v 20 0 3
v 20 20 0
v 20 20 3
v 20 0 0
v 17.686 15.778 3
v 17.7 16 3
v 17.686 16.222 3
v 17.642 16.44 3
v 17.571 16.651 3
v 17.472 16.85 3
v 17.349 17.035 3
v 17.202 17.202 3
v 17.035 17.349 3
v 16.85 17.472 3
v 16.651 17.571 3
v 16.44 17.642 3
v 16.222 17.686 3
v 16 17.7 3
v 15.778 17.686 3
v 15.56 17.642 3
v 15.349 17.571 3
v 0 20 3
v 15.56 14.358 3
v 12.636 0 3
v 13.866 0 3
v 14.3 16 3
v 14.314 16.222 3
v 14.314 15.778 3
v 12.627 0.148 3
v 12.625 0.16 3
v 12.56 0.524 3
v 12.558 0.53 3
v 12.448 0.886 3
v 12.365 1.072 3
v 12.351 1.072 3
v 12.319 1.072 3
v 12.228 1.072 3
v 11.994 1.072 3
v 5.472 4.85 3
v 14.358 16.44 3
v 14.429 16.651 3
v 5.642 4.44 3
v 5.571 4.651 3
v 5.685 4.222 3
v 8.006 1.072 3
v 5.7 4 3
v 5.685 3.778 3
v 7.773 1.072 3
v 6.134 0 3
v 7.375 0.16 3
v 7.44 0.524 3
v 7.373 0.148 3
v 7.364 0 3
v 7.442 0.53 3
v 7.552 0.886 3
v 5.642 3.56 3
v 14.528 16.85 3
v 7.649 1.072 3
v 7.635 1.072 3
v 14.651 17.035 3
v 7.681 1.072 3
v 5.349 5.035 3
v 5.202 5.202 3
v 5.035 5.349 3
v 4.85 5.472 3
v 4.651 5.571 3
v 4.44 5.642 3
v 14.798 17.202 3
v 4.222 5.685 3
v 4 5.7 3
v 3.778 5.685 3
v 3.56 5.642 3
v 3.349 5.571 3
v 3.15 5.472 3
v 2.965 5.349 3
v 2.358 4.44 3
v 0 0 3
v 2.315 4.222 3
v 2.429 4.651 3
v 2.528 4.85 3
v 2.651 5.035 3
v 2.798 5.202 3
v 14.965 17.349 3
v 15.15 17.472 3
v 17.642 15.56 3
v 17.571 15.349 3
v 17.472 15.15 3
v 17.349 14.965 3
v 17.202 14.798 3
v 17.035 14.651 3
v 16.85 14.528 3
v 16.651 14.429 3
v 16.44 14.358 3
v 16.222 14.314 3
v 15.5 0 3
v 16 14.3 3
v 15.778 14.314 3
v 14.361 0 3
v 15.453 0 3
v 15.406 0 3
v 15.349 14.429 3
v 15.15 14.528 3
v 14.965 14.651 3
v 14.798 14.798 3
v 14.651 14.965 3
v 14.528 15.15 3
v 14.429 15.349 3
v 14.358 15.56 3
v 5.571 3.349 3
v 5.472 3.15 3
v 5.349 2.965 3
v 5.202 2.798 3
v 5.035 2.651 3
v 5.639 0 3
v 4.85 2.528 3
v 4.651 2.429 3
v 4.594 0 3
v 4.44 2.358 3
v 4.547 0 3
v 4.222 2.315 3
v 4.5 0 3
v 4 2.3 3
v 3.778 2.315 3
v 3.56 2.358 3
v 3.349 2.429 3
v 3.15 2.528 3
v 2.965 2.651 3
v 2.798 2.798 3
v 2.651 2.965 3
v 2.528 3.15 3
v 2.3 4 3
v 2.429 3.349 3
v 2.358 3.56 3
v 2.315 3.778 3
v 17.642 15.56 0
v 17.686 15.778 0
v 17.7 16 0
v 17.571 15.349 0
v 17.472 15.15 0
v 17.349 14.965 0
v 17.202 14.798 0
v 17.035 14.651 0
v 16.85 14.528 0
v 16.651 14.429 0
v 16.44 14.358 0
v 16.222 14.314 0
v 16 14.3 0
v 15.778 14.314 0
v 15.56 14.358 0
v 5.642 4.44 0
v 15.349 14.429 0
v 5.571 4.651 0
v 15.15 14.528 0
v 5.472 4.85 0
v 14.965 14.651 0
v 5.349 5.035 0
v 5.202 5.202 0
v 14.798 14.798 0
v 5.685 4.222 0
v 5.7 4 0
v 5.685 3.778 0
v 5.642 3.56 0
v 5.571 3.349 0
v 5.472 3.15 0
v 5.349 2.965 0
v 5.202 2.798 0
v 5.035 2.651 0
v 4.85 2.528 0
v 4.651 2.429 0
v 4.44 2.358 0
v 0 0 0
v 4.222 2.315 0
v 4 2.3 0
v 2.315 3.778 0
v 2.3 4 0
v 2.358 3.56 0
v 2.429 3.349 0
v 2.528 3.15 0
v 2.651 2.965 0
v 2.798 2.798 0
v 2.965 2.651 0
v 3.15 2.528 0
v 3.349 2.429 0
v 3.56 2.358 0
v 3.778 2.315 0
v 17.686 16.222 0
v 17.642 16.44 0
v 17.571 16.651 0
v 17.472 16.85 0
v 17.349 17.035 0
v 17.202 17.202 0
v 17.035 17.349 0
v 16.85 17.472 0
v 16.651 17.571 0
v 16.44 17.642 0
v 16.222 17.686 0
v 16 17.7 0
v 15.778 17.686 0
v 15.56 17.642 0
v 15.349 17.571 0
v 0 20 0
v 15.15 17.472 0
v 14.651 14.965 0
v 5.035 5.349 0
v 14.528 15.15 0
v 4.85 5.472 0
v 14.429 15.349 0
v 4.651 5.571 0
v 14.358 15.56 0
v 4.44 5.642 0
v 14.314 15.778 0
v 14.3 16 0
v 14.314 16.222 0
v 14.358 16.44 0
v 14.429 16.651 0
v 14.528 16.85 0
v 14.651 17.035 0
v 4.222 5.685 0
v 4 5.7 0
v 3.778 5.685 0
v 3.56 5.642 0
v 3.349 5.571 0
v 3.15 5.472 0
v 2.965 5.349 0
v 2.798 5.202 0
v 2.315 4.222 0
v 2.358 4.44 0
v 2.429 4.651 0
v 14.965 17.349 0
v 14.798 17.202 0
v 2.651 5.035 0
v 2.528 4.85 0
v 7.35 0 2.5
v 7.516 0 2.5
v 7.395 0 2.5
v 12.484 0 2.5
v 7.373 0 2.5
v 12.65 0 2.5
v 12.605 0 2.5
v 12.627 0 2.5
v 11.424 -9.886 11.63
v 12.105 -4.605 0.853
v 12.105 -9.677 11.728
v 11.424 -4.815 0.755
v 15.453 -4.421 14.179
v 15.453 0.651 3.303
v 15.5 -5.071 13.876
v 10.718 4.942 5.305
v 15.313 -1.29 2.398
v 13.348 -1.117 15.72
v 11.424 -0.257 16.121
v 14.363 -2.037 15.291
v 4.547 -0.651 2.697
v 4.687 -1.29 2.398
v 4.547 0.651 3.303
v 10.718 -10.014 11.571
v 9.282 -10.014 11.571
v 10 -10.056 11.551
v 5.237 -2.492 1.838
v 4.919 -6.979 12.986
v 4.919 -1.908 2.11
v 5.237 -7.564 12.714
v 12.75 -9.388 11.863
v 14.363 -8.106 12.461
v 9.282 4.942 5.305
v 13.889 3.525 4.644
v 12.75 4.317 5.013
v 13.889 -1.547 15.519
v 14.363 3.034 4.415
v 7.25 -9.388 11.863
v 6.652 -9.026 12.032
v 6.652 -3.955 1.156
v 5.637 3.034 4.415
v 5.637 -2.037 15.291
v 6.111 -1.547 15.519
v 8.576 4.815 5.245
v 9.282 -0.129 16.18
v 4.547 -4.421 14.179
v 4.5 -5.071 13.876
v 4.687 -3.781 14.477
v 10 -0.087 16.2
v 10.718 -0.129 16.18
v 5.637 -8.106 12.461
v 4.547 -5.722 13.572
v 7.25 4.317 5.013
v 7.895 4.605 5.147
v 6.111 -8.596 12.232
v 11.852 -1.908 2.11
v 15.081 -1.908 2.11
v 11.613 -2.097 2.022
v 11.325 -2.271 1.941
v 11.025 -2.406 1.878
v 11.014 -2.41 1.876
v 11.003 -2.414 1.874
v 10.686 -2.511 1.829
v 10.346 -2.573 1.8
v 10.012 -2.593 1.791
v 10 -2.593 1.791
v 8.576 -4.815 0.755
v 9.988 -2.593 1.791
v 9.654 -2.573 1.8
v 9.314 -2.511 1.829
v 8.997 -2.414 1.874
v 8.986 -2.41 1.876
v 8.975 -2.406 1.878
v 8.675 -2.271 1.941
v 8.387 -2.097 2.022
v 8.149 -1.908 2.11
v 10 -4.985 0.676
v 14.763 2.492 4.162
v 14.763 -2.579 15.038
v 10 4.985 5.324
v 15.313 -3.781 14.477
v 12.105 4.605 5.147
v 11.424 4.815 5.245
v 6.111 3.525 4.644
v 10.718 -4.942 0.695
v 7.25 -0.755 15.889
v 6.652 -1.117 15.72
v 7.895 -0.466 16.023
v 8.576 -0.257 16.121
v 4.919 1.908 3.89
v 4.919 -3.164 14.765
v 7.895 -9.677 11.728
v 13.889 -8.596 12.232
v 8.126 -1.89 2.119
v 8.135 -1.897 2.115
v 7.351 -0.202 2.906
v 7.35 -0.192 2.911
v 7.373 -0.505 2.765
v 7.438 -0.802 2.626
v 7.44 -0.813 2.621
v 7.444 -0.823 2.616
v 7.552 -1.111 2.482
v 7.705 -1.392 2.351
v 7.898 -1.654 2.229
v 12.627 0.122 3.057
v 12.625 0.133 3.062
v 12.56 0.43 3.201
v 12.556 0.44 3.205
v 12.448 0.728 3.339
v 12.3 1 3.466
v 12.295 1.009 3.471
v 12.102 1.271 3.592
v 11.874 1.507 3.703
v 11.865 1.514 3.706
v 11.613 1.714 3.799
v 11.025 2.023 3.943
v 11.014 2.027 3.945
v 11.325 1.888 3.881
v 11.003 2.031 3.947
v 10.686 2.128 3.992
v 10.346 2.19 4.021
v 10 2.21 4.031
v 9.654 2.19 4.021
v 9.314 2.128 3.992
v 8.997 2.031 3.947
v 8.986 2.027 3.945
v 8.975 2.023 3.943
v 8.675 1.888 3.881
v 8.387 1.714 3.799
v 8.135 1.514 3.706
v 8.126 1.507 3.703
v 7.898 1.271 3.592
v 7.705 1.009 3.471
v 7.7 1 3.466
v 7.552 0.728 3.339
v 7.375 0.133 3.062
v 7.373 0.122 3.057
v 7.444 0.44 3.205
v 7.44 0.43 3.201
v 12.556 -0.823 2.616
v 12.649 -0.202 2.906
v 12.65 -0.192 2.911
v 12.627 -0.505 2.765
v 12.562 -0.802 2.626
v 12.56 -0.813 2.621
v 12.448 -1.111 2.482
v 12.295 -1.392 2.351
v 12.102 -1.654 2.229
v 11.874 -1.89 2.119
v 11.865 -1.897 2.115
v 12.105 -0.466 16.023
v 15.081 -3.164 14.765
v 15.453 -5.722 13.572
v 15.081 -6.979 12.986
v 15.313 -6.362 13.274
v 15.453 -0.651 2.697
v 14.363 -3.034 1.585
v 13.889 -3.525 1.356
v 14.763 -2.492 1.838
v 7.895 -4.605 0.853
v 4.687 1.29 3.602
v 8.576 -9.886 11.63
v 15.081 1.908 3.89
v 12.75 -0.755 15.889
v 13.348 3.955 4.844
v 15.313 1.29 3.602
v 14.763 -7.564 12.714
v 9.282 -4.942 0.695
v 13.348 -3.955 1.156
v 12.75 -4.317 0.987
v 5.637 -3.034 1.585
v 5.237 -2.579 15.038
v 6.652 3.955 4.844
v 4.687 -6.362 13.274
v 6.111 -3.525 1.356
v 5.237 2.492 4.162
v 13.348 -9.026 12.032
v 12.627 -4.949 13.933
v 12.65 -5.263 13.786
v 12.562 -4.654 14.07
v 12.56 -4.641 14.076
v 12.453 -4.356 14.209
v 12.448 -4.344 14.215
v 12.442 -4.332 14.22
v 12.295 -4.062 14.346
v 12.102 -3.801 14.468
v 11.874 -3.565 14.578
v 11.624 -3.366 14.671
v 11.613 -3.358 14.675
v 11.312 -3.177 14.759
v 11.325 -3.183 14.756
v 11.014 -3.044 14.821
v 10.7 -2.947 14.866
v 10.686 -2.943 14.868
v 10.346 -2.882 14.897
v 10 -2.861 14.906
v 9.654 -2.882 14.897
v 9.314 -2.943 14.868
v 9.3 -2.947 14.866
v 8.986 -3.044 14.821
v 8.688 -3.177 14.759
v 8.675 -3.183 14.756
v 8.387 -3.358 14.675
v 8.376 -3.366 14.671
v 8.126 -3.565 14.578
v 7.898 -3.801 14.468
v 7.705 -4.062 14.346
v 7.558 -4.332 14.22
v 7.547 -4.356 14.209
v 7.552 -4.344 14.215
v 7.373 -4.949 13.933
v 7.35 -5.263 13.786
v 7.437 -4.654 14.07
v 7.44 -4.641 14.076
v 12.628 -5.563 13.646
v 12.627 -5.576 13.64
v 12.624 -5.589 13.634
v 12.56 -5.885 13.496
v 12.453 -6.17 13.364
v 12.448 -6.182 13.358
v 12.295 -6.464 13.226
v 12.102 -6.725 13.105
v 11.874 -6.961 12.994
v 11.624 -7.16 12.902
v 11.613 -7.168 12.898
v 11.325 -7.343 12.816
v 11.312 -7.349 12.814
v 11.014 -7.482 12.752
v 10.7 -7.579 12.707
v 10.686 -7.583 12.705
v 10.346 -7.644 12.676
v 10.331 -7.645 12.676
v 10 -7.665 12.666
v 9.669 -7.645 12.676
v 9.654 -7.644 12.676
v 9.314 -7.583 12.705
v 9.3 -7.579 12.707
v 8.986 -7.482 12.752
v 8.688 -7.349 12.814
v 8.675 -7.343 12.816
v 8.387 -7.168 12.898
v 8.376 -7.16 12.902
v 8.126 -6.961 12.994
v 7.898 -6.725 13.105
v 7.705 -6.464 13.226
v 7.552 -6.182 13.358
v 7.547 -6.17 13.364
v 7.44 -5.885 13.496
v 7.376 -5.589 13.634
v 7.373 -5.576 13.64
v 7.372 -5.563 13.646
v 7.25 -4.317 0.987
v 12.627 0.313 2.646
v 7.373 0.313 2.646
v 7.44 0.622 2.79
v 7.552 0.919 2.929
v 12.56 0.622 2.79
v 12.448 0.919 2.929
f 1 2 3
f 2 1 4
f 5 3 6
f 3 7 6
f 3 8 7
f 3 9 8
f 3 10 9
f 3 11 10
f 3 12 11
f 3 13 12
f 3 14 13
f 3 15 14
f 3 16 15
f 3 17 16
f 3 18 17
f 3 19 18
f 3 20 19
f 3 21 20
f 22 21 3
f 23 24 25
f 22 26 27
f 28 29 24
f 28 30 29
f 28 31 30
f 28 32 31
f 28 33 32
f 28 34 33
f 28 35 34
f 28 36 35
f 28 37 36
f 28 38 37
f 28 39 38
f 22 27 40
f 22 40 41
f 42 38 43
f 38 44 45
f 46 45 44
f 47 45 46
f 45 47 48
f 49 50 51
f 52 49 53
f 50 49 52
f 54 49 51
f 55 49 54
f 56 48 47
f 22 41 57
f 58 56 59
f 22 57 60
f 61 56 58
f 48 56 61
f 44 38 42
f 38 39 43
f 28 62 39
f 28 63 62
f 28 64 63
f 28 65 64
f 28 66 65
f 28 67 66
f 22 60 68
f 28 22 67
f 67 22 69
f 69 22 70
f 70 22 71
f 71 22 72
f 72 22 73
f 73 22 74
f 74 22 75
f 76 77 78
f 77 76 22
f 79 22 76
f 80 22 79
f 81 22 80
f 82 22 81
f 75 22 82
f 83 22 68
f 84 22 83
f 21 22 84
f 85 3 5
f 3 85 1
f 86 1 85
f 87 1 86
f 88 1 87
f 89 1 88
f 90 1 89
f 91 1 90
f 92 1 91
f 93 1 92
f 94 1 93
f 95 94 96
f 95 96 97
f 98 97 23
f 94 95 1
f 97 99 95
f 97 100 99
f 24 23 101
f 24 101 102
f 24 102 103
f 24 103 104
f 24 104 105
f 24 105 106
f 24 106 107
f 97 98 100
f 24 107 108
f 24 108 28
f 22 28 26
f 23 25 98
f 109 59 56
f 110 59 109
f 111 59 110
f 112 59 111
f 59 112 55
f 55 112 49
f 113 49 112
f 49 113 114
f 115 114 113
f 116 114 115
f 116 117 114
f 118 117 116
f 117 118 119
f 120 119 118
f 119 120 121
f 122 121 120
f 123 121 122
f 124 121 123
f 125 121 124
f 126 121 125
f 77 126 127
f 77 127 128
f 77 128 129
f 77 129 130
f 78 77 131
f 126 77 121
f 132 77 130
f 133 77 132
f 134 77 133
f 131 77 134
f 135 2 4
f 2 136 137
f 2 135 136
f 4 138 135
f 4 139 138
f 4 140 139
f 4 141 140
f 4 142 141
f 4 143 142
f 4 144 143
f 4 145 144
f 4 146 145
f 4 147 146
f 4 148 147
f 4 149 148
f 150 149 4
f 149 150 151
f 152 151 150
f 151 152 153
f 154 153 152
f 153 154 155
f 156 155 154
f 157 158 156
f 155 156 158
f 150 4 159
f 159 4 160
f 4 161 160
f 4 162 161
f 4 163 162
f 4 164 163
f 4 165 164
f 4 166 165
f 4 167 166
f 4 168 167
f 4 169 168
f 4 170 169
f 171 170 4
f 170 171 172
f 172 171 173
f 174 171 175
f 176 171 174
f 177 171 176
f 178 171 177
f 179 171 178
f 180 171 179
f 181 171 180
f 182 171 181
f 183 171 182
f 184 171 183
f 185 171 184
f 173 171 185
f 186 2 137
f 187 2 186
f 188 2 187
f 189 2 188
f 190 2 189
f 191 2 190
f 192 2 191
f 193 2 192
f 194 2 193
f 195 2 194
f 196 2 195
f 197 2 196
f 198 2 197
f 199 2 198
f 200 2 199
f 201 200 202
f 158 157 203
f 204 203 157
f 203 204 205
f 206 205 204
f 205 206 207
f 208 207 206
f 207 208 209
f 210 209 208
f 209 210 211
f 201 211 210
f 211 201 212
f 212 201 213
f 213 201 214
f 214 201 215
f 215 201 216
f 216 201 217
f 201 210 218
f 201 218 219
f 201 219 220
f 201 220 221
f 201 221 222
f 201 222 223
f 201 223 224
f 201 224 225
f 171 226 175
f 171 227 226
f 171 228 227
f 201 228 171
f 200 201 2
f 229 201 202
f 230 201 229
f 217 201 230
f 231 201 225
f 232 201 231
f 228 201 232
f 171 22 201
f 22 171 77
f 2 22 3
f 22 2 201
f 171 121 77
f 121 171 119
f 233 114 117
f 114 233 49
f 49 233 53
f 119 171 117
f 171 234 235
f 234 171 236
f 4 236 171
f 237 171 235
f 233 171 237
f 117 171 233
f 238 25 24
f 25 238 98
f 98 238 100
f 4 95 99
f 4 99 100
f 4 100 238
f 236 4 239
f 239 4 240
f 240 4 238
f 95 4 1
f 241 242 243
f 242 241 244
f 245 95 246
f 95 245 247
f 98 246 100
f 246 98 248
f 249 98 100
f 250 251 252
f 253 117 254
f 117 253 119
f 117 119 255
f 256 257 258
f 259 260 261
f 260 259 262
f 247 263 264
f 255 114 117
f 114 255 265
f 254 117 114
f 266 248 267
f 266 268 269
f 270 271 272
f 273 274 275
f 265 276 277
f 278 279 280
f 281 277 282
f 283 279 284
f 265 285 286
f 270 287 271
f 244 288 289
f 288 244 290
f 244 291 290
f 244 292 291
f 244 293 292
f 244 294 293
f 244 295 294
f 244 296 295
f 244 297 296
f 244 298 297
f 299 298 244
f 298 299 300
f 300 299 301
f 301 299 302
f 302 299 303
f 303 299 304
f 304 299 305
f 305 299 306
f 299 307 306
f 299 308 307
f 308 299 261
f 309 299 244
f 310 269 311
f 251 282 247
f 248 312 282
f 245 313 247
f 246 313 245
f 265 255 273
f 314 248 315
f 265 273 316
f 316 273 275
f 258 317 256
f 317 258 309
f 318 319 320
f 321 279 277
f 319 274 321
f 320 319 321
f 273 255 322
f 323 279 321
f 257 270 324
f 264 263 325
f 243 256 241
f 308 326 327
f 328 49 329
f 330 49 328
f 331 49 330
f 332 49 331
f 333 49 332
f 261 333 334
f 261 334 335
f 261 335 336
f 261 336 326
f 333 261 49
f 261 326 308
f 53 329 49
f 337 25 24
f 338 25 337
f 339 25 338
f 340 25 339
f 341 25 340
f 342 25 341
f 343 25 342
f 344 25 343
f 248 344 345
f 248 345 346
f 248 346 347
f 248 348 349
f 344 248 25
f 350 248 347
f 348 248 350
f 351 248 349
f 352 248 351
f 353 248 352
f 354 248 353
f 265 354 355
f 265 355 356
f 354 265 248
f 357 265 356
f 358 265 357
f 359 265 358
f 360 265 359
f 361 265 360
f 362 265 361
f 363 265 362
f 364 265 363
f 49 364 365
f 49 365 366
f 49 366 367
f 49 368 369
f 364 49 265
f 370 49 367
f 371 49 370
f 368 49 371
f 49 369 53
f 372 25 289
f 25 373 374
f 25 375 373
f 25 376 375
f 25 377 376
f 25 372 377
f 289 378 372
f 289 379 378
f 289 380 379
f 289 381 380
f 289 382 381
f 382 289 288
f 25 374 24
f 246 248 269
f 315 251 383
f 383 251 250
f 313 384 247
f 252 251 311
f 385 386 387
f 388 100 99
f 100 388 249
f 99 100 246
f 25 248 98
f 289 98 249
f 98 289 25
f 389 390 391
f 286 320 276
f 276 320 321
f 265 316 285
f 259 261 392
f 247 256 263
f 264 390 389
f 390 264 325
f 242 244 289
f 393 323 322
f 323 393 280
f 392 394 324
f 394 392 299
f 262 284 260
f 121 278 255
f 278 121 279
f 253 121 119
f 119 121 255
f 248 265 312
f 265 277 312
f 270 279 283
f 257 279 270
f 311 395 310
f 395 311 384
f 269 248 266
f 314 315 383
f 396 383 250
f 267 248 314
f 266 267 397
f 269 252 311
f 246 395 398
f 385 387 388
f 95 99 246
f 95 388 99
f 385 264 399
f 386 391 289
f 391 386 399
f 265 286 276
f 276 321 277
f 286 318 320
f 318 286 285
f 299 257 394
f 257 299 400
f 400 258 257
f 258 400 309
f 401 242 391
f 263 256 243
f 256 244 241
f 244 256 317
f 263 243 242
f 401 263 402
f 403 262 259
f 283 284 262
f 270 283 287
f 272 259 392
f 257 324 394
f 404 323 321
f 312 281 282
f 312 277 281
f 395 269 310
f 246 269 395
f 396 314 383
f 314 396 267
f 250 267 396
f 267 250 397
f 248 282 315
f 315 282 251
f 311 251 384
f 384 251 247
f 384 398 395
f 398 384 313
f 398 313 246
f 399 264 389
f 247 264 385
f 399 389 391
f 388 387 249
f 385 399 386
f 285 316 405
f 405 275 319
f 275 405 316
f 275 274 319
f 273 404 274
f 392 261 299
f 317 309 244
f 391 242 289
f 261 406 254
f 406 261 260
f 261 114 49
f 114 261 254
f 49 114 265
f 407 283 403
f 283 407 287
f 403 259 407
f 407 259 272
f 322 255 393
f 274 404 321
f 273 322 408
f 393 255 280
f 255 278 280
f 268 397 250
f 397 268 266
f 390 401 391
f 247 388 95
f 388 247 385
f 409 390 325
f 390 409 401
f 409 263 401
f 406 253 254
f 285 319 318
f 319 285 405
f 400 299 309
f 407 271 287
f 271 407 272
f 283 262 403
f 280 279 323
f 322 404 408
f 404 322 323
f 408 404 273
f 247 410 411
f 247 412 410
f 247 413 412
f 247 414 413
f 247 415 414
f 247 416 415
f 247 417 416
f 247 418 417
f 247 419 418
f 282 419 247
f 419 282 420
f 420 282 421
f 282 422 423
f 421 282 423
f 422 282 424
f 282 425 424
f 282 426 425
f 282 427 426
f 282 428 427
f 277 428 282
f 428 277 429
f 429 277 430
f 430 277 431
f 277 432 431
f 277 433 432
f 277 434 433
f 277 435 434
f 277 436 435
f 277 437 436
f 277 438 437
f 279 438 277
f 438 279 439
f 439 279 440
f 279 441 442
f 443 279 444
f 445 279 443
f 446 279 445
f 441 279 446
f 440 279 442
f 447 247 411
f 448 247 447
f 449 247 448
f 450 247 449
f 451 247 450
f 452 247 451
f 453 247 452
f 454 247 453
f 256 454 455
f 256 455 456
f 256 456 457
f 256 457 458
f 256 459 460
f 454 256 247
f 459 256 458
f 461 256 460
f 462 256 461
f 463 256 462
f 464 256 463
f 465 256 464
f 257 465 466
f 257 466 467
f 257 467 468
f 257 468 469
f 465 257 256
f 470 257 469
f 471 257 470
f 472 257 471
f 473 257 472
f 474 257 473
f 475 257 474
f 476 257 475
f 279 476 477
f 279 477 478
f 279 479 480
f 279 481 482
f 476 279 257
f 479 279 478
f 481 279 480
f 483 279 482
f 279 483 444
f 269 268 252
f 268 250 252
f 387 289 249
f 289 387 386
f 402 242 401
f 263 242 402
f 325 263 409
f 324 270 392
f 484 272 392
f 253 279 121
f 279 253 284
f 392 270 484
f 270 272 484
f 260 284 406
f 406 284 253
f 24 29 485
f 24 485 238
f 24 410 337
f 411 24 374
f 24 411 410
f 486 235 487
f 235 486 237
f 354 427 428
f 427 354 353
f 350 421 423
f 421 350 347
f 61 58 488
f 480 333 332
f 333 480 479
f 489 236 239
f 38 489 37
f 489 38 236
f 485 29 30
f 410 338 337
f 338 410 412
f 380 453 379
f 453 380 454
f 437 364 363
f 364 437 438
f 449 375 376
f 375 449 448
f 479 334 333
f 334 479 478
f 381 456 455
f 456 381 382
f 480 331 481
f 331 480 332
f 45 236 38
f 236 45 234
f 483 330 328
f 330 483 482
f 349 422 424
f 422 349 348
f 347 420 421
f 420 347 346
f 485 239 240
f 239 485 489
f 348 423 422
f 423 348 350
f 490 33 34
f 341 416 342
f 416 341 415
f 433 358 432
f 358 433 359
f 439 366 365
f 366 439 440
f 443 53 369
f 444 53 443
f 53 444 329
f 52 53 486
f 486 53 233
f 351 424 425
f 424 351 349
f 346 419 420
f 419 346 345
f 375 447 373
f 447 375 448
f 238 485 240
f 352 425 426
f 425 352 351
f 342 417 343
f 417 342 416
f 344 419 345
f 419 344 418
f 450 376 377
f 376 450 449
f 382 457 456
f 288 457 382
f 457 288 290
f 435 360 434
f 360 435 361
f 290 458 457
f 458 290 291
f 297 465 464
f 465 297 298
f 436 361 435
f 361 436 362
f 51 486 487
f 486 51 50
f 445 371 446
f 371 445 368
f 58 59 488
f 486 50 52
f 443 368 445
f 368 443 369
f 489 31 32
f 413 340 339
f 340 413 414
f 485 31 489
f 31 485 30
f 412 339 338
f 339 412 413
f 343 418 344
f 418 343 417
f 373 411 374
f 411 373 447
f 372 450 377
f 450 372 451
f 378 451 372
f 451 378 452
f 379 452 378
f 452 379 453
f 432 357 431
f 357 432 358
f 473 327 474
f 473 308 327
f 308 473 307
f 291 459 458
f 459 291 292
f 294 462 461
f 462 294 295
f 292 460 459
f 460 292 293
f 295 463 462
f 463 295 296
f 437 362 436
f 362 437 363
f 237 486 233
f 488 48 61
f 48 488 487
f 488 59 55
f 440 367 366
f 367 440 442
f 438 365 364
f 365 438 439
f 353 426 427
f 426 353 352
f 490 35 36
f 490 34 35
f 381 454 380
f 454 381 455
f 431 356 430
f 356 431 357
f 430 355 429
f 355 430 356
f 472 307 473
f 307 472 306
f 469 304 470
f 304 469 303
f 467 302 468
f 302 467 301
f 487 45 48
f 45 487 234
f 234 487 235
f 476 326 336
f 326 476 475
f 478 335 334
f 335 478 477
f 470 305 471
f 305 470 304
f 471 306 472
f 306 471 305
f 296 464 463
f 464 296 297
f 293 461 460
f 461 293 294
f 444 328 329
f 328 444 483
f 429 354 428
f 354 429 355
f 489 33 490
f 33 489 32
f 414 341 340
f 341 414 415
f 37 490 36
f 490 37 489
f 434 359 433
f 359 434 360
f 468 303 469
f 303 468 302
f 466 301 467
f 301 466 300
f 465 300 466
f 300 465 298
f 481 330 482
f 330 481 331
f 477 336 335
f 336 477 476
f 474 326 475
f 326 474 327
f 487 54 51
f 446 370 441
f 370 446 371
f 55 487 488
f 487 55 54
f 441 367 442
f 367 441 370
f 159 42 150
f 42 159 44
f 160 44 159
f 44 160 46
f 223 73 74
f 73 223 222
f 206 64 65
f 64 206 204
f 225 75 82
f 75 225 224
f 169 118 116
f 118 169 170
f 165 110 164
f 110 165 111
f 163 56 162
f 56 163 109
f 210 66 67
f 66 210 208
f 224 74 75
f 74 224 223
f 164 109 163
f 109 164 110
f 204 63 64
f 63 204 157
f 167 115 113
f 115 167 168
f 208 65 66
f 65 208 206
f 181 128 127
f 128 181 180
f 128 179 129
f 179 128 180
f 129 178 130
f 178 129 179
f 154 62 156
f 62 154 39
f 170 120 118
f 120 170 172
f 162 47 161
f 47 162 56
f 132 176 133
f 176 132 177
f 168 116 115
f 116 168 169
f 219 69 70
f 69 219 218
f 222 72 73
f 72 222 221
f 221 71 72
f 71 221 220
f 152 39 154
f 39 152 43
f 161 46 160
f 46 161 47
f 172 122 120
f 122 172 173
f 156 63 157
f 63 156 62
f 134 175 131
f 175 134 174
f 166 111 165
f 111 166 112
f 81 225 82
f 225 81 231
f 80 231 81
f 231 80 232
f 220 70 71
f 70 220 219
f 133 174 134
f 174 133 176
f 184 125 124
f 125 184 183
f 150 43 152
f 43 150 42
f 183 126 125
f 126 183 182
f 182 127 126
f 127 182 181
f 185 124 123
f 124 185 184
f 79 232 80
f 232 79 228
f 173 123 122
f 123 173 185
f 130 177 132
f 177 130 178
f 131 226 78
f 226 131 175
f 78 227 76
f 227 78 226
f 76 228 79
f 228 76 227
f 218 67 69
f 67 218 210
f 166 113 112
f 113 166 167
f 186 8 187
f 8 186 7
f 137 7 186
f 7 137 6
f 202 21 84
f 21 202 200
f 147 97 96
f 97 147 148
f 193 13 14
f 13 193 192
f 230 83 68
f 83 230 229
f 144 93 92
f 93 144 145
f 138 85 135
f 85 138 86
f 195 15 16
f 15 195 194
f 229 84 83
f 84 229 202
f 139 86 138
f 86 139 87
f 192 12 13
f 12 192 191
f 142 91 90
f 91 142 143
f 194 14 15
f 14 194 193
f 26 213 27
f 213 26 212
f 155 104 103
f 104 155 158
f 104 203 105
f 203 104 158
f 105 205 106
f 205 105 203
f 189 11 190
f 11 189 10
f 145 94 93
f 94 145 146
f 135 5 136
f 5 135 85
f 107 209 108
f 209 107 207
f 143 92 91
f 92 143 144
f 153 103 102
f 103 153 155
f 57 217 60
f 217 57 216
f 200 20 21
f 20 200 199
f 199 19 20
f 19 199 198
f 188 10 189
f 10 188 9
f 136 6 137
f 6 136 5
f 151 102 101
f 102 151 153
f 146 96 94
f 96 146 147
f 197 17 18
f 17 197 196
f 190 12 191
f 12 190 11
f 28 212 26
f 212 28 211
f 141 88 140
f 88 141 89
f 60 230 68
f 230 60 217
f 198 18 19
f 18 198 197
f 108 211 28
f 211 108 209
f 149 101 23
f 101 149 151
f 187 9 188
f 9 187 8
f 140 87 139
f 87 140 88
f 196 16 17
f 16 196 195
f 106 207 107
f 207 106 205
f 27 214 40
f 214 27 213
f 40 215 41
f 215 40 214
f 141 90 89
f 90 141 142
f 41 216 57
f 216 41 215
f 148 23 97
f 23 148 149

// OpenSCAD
// file: params.scad
// Shared measurements for the hookswitch assembly (handset / hook / cradle / switch).
// MEASURE YOUR ACTUAL HANDSET AND SWITCH AND EDIT THESE before printing —
// defaults are typical old-telephone-handset / generic microswitch dimensions.

// --- Handset ---
handset_barrel_d   = 34;   // diameter of the handset where it rests in the cradle prongs
handset_rest_len   = 60;   // length of barrel section that sits in the saddle

// --- Hook lever (see-saw pressed down by handset weight) ---
lever_length       = 70;
lever_width        = 22;
lever_thickness    = 5;
pivot_pin_d        = 4;    // diameter of the pivot rod/pin (e.g. M4 bolt or steel rod)
pivot_offset       = 20;   // distance from lever's front edge to the pivot axis

// --- Microswitch (generic mini SPDT lever switch, e.g. Omron V-15x / KW-11) ---
switch_body_w      = 12.8;
switch_body_d      = 6.4;
switch_body_h      = 6.4;
switch_mount_hole_spacing = 10;  // center-to-center of the two mounting screw holes
switch_screw_d     = 2.2;        // clearance hole for M2 self-tap

// --- IR blaster (persona/channel-switch signaling, see PHILOSOPHY.md #5) ---
ir_led_d           = 5;    // standard 5mm IR LED
ir_mount_w         = 20;
ir_mount_h         = 12;

// --- Earcon speaker (small dedicated driver for crt-earcon.sh beeps,
// separate from the handset earpiece -- see IDLE-BAIT.md) ---
earcon_speaker_d   = 28;   // typical small round speaker (e.g. 28mm mini driver)
earcon_grille_hole_d = 2;
earcon_grille_hole_spacing = 4;

// --- General ---
wall               = 3;
clearance          = 0.3;  // fit clearance between mating printed parts
$fn                = 48;
// main file
// Small bracket to aim an IR LED at the TV's remote sensor, for the
// "one body, several selves" persona-channel idea (PHILOSOPHY.md #5):
// switching mode = actually changing the TV's channel via IR, so each
// persona reinforces its own identity physically, not just on-screen.
//
// STATUS: pure speculative geometry -- no LED, no TV sensor position, no
// mounting surface measured yet. This exists so the idea has a shape to
// react to and refine once there's a real IR LED + TV in hand, not as a
// print-ready part.
include <params.scad>

module ir_blaster_mount() {
  difference() {
    union() {
      // base plate, mounts to the CRT chassis or a shelf near it
      cube([ir_mount_w, ir_mount_w, wall]);
      // angled LED holder, tilted toward the presumed TV sensor height
      translate([ir_mount_w/2, 0, wall])
        rotate([25, 0, 0])
          cylinder(d = ir_led_d + wall*2, h = ir_mount_h);
    }
    // LED bore through the holder
    translate([ir_mount_w/2, 0, wall - 0.5])
      rotate([25, 0, 0])
        cylinder(d = ir_led_d + clearance, h = ir_mount_h + 1);
    // two mount screw holes in the base plate
    translate([4, 4, -1]) cylinder(d = 3.4, h = wall + 2);
    translate([ir_mount_w - 4, ir_mount_w - 4, -1]) cylinder(d = 3.4, h = wall + 2);
  }
}

ir_blaster_mount();
